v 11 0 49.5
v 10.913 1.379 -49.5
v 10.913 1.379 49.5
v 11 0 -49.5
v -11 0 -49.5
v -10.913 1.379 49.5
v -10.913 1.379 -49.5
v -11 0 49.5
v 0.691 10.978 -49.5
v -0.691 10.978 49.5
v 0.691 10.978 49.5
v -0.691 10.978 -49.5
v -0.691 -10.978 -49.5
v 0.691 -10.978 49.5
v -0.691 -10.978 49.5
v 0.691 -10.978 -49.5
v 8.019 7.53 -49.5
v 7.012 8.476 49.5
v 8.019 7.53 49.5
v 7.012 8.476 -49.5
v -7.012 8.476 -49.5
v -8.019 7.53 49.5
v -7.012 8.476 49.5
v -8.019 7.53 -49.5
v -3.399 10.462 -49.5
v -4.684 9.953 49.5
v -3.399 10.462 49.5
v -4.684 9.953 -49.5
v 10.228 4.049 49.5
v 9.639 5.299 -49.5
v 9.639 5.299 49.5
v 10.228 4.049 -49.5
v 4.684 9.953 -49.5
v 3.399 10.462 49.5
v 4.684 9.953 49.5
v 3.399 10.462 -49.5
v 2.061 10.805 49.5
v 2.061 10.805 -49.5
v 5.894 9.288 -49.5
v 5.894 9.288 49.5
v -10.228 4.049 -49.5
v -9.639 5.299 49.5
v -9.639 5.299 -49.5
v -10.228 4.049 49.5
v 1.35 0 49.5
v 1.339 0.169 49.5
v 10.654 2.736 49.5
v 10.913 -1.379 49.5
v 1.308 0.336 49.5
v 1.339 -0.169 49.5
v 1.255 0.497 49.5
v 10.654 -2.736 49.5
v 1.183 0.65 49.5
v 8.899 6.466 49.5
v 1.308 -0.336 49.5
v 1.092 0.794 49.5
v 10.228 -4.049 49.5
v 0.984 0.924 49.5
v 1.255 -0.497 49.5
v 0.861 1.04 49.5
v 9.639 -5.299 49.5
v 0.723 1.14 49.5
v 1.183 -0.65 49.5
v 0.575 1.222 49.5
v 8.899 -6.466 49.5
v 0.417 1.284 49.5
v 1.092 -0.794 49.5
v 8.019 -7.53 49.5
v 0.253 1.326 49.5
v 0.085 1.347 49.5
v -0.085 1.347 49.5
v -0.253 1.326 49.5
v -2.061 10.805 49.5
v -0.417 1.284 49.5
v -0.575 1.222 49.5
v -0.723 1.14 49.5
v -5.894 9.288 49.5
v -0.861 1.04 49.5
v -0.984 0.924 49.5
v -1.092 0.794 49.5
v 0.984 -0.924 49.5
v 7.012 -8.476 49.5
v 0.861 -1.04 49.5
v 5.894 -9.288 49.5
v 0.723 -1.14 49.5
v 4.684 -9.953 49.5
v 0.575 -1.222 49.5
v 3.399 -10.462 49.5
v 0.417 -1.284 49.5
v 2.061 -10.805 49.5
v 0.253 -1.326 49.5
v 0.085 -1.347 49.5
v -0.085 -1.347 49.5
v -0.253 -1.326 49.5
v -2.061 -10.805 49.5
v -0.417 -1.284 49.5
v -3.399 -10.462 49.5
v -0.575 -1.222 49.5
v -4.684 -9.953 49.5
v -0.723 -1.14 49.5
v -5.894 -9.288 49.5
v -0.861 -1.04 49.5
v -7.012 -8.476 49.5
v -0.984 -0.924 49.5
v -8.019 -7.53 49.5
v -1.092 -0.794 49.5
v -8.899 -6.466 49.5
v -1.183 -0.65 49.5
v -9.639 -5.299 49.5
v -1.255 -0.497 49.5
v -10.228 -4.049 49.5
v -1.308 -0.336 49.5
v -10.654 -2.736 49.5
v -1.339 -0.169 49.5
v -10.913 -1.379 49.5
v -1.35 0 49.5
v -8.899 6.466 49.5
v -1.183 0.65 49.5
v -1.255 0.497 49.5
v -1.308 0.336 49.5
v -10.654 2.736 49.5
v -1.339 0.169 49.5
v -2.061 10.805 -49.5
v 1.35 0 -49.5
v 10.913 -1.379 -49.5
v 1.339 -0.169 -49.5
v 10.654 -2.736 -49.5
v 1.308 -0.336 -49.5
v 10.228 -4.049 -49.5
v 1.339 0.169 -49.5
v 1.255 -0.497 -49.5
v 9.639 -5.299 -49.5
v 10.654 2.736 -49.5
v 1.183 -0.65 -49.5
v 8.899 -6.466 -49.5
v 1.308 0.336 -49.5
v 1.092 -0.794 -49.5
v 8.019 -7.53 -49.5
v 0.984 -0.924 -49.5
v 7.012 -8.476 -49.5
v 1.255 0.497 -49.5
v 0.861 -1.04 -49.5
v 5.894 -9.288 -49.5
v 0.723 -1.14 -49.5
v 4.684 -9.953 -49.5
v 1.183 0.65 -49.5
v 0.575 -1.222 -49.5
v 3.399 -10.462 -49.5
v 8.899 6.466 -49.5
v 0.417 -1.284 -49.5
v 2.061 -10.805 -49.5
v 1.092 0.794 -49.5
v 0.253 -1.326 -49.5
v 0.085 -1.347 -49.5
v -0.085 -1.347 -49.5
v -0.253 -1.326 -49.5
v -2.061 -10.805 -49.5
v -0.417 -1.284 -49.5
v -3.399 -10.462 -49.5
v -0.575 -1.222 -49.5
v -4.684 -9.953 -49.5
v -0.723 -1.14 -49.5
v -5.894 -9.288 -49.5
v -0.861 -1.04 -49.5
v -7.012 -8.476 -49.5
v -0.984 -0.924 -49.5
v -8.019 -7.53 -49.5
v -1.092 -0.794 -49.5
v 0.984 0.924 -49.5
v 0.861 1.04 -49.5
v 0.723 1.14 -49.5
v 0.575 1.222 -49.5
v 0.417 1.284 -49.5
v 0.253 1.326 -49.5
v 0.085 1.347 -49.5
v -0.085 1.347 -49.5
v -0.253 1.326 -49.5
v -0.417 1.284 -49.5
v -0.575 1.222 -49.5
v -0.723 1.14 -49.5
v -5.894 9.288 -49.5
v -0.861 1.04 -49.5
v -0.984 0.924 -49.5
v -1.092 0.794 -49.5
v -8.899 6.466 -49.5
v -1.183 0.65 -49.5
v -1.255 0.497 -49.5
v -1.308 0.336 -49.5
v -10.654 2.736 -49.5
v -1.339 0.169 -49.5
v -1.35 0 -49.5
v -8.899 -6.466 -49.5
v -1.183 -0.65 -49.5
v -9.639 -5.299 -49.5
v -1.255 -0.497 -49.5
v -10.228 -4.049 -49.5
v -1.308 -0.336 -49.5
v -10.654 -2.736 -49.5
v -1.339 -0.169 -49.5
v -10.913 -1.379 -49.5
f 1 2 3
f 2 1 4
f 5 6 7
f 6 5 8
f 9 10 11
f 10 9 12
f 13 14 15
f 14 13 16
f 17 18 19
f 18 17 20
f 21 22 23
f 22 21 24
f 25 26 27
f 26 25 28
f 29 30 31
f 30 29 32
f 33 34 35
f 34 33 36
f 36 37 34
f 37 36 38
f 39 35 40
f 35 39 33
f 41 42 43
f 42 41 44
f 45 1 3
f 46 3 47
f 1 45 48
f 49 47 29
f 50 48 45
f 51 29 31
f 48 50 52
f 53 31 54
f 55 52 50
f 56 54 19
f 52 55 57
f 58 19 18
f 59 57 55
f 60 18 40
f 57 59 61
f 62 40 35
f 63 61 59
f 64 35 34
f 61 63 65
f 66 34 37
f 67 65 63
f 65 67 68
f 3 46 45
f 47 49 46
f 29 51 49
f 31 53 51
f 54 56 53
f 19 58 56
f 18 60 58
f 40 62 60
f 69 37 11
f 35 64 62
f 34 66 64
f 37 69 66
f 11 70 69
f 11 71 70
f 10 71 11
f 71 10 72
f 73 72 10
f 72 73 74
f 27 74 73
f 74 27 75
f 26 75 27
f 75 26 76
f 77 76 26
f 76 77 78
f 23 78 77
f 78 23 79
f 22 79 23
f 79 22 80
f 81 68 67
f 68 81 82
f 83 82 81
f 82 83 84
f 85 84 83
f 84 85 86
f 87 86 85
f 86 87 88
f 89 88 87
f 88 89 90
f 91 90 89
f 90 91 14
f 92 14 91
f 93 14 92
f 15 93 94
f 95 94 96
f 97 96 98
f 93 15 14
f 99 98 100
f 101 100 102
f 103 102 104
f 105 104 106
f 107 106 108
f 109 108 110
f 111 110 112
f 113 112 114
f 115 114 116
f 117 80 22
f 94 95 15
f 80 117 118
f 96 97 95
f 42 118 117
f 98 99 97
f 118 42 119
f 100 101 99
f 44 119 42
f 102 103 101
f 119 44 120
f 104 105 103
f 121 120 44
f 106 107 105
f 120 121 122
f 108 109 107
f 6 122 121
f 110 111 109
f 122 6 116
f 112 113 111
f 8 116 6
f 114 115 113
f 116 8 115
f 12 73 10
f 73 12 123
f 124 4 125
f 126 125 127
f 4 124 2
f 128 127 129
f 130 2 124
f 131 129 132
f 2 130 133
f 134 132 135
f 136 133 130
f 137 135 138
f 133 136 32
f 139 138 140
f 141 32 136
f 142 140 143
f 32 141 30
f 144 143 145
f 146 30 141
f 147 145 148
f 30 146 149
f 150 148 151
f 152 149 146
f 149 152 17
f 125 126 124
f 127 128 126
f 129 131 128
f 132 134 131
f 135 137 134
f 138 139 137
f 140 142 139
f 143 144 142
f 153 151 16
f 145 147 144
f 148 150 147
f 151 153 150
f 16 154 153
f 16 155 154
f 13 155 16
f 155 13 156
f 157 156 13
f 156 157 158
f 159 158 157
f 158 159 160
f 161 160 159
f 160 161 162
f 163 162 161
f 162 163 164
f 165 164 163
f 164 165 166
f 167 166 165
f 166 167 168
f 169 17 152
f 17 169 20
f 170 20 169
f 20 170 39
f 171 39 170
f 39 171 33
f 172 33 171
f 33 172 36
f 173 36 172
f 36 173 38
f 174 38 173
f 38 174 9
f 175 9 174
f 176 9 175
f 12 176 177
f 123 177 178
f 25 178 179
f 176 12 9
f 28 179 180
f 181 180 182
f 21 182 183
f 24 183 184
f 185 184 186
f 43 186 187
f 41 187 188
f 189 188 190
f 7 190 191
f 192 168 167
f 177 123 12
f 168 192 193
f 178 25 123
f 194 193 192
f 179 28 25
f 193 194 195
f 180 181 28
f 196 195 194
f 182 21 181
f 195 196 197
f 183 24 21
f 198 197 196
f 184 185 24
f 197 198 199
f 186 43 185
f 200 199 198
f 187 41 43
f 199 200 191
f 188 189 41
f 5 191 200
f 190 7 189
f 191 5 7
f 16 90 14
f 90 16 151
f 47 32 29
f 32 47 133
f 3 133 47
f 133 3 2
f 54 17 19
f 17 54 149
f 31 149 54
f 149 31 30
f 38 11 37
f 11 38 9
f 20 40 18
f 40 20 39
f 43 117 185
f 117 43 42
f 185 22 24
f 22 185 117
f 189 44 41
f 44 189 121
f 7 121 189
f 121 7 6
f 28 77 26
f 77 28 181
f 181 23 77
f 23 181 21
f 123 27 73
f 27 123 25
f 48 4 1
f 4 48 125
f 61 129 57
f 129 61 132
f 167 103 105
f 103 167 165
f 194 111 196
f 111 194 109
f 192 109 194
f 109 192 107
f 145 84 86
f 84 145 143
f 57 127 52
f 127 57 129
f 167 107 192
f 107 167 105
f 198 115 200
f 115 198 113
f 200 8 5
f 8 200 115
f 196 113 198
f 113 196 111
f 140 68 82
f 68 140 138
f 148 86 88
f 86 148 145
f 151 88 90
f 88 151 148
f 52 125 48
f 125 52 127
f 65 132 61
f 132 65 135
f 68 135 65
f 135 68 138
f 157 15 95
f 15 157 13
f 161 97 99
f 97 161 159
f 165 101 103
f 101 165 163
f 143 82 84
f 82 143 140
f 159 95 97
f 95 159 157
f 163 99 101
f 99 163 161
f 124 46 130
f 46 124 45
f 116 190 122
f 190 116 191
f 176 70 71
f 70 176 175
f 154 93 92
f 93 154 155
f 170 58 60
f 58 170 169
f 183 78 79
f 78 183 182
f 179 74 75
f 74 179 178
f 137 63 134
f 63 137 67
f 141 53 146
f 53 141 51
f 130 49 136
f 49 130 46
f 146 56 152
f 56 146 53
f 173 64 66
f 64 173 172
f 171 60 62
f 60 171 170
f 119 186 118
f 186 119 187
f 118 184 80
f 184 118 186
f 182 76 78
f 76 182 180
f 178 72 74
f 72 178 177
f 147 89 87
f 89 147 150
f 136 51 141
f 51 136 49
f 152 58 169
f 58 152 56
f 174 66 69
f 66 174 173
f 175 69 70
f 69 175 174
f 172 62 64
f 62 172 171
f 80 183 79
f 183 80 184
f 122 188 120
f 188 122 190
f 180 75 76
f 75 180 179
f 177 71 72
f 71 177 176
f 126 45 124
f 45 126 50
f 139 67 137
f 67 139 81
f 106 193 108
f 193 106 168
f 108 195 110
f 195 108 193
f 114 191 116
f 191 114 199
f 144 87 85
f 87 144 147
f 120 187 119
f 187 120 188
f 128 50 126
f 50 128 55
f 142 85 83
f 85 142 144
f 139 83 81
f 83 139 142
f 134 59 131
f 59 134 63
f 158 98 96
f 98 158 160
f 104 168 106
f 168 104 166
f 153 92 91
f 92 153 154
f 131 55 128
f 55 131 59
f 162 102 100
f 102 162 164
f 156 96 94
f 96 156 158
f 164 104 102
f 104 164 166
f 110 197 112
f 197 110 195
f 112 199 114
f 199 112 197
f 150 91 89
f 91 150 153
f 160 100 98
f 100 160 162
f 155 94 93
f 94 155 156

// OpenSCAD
$fn = 50;


difference() {
	union() {
		translate(v = [0, 0, -49.5000000000]) {
			cylinder(h = 99, r = 11.0000000000);
		}
	}
	union() {
		translate(v = [0, 0, -100.0000000000]) {
			cylinder(h = 200, r = 1.3500000000);
		}
	}
}
